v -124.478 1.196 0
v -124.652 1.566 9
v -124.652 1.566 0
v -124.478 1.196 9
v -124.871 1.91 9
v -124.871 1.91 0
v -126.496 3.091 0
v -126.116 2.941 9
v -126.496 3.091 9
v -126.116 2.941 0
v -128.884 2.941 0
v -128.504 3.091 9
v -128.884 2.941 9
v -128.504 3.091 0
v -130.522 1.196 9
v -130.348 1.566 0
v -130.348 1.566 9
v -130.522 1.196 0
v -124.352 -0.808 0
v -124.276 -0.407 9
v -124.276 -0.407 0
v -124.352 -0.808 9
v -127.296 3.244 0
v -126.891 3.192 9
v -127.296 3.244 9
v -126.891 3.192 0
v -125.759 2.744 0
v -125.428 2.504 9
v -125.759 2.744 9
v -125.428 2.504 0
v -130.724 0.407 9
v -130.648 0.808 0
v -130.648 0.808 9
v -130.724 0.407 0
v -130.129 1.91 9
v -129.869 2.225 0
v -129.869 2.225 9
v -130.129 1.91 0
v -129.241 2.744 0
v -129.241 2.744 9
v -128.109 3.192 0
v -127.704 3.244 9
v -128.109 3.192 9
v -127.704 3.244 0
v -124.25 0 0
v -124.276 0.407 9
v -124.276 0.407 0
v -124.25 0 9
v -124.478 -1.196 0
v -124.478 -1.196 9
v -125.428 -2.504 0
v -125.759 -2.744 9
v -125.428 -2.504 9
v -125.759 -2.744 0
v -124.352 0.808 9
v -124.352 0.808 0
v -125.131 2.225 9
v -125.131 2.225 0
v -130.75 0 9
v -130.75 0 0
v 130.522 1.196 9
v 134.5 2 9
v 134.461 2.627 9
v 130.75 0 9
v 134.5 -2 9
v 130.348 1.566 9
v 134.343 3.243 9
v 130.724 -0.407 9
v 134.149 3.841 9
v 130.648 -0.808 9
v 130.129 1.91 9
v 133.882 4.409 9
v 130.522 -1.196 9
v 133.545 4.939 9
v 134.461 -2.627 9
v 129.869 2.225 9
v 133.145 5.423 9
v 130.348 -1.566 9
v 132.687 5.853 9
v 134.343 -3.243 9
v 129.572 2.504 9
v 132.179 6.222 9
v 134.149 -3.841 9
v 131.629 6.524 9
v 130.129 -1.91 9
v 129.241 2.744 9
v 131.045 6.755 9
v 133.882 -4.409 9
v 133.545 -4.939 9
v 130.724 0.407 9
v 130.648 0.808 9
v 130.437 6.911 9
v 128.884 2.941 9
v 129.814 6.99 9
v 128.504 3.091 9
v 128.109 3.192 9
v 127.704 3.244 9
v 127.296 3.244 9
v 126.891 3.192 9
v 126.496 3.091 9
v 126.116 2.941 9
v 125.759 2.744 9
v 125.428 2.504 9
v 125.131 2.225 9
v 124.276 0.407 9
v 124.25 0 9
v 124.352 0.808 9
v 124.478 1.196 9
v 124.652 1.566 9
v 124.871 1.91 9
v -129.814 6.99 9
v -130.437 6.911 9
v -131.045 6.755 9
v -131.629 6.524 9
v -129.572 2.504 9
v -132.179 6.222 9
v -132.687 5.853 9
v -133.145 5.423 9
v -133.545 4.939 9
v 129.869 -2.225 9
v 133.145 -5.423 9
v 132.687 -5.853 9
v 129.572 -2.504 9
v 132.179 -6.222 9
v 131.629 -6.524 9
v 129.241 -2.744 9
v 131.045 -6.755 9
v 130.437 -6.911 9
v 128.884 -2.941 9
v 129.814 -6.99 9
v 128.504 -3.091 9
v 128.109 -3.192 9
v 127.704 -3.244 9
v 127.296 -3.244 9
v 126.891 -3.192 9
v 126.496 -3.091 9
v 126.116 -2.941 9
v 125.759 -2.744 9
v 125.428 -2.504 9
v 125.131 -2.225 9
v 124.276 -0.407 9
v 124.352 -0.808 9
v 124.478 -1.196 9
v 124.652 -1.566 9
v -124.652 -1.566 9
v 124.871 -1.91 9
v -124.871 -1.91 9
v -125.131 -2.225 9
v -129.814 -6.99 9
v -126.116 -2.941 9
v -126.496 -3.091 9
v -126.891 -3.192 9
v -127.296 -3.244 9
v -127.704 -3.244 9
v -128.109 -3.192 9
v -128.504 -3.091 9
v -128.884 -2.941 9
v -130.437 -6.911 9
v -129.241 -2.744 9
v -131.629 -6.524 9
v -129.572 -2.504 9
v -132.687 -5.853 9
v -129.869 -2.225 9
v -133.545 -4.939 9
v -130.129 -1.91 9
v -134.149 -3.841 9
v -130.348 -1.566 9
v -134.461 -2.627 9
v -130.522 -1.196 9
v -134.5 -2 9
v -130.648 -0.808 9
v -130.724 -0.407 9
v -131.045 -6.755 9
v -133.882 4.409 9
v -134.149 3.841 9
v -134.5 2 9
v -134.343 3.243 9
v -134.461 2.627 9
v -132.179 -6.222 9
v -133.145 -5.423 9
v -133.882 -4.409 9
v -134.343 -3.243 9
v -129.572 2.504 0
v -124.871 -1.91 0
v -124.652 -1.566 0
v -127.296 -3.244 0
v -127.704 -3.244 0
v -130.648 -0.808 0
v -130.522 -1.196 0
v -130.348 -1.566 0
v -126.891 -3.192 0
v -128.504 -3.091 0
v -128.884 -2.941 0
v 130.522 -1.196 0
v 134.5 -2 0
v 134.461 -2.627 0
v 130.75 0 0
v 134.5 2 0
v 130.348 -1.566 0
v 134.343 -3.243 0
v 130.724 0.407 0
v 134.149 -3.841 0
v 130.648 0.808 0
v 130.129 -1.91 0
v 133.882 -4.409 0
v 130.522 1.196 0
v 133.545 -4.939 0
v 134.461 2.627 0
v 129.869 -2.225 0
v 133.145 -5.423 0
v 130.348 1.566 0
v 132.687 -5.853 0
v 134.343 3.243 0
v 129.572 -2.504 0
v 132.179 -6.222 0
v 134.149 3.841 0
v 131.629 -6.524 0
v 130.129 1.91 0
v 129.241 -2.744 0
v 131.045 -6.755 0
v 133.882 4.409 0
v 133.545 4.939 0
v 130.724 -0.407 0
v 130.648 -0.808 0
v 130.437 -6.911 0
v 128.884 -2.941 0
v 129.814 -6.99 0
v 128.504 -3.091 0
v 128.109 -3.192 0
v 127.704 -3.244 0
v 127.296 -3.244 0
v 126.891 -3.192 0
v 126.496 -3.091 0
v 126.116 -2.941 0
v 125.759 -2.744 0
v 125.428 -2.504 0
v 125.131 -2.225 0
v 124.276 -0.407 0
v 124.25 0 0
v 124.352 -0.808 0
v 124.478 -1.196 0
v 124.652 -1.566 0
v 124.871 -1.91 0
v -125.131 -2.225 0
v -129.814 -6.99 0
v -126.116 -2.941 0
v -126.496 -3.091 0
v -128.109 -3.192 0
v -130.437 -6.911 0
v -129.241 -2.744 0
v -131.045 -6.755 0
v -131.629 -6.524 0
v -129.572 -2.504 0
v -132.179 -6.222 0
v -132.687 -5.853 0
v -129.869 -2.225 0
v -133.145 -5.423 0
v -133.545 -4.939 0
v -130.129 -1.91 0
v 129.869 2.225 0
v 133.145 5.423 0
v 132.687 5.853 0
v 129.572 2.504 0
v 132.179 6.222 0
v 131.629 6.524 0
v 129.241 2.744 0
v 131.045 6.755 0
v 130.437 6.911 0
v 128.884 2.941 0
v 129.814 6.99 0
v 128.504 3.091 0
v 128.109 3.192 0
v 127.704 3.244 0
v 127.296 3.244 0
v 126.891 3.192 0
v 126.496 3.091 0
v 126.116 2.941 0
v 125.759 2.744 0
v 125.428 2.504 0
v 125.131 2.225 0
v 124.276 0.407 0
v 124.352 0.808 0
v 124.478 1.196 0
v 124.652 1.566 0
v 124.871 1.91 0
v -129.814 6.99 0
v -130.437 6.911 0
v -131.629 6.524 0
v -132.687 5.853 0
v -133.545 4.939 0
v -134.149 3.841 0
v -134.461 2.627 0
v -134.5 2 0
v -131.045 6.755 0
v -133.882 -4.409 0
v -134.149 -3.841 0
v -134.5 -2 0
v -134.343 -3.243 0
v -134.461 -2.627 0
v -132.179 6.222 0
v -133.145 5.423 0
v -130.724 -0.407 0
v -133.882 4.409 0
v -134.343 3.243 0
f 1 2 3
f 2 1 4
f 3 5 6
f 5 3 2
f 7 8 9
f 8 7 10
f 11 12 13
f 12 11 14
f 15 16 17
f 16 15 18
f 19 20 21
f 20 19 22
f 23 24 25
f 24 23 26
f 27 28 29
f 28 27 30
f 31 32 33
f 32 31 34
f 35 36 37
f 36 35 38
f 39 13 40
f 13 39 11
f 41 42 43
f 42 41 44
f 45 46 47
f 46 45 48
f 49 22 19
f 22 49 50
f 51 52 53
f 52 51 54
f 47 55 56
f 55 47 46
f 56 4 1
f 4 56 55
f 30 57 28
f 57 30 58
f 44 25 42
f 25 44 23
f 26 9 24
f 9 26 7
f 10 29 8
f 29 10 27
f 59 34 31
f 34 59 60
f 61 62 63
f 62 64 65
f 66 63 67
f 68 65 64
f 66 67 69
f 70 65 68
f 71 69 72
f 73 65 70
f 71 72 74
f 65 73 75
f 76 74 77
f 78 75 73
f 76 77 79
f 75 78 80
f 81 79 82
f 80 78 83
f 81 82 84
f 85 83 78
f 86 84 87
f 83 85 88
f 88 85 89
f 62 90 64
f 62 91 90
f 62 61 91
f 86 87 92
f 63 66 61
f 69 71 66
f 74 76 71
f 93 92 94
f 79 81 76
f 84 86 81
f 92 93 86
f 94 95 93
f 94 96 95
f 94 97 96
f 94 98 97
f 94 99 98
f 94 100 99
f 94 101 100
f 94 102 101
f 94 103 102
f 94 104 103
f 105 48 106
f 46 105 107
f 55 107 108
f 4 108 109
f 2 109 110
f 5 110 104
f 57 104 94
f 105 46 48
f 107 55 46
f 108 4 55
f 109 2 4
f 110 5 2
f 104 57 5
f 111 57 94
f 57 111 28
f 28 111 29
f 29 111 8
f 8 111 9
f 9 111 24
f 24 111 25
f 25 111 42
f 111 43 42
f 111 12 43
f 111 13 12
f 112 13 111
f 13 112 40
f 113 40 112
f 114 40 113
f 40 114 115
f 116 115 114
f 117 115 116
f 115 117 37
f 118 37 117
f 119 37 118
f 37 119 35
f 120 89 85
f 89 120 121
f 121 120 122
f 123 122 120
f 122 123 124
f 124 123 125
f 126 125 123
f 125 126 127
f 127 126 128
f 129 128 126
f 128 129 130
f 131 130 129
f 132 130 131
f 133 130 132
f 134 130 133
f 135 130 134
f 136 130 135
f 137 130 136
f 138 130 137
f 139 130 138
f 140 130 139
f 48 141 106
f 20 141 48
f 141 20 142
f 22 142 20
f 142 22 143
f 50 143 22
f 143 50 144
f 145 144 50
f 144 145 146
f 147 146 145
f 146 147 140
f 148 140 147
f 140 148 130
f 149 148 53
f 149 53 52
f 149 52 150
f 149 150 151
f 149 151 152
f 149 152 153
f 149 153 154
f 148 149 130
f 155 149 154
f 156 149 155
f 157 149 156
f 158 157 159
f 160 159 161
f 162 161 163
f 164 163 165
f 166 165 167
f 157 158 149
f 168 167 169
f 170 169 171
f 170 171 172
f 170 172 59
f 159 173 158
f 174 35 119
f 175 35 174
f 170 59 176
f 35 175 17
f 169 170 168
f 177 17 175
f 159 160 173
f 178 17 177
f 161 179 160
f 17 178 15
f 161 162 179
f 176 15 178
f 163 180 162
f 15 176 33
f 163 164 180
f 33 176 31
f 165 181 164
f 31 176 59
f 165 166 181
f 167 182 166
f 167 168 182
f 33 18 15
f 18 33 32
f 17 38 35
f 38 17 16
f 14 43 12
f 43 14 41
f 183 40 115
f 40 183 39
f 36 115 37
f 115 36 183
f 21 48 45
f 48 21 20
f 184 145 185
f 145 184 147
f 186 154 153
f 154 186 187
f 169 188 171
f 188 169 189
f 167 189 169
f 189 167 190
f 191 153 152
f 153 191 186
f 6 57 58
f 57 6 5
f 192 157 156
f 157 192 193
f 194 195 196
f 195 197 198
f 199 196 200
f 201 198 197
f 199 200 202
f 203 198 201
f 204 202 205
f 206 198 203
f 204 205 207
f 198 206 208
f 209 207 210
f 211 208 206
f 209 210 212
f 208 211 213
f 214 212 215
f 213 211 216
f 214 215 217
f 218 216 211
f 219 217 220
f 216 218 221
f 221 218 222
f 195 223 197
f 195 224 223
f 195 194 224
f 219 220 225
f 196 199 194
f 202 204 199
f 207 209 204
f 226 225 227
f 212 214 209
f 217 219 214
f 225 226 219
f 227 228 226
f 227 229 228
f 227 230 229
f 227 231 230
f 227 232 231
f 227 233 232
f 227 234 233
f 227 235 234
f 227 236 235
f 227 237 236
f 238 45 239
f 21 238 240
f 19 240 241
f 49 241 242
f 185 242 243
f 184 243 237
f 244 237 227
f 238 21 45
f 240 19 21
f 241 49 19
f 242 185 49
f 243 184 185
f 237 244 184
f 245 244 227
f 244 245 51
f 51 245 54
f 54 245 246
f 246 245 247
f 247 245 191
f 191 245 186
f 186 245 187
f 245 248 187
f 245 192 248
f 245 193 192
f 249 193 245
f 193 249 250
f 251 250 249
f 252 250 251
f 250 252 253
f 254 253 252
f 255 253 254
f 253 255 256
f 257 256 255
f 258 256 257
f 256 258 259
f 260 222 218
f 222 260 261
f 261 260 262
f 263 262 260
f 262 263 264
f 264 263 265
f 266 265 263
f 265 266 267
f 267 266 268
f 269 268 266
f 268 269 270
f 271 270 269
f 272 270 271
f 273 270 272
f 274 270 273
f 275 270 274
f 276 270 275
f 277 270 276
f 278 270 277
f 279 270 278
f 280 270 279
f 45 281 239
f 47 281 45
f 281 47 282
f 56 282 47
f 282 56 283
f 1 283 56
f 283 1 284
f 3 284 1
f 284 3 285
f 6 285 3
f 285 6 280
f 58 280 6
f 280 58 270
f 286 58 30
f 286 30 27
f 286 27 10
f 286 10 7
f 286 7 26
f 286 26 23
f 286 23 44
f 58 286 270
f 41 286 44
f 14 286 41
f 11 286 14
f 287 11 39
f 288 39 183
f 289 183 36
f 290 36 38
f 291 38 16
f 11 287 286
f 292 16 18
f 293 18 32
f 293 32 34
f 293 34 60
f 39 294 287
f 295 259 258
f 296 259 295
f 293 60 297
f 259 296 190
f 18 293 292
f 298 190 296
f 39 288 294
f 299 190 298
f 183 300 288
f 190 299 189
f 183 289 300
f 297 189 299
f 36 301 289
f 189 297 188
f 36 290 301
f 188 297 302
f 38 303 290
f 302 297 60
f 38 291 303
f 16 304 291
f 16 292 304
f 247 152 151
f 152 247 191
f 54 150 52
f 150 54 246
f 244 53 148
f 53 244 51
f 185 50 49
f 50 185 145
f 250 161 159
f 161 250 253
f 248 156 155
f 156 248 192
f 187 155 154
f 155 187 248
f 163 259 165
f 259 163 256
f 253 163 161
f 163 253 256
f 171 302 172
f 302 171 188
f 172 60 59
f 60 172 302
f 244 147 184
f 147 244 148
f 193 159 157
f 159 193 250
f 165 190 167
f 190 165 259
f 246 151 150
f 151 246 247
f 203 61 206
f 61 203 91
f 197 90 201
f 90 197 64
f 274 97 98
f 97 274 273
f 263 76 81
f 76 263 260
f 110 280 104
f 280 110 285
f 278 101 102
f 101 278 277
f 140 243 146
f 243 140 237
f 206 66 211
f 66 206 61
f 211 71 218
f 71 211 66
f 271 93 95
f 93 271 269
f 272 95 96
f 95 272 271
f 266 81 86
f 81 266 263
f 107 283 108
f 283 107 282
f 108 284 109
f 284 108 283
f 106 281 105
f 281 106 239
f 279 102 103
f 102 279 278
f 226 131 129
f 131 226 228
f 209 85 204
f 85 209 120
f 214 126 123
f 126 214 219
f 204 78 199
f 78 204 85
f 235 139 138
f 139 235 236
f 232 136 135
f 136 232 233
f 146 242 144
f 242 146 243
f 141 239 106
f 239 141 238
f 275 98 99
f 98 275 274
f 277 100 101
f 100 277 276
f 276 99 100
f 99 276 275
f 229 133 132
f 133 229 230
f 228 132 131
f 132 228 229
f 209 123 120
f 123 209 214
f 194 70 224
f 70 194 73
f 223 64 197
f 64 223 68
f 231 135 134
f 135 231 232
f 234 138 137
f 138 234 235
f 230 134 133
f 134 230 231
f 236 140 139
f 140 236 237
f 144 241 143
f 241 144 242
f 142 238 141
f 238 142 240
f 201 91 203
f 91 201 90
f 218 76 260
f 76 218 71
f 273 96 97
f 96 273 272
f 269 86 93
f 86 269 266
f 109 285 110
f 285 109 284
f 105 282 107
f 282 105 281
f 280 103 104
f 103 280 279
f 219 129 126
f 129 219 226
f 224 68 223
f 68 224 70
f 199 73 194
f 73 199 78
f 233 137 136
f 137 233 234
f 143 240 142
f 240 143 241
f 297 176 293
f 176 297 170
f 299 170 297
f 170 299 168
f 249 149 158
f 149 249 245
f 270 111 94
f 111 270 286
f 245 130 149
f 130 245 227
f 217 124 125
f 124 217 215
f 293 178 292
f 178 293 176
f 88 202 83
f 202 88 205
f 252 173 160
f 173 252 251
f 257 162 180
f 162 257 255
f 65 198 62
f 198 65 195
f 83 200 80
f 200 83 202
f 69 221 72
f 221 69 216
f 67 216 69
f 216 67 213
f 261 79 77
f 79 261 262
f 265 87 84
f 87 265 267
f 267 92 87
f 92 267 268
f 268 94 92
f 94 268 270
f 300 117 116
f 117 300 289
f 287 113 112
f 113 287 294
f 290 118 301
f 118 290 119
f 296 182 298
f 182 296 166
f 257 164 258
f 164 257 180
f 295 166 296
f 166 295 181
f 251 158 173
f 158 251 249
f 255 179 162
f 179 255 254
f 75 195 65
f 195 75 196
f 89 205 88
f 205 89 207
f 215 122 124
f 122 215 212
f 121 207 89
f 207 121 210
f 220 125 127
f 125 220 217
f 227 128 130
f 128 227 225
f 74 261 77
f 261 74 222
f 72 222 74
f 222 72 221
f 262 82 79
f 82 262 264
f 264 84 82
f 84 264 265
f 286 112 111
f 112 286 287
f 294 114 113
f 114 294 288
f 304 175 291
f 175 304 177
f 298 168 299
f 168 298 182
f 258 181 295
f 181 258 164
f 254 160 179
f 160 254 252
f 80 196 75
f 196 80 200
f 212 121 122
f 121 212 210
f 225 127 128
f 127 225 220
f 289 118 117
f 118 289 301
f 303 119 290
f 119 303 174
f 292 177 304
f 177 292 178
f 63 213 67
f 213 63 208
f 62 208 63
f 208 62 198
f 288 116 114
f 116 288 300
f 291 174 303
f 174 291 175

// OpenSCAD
$fn = 50;


difference() {
	union() {
		hull() {
			translate(v = [-129.5000000000, 2.0000000000, 0]) {
				cylinder(h = 9, r = 5);
			}
			translate(v = [129.5000000000, 2.0000000000, 0]) {
				cylinder(h = 9, r = 5);
			}
			translate(v = [-129.5000000000, -2.0000000000, 0]) {
				cylinder(h = 9, r = 5);
			}
			translate(v = [129.5000000000, -2.0000000000, 0]) {
				cylinder(h = 9, r = 5);
			}
		}
	}
	union() {
		translate(v = [-127.5000000000, 0.0000000000, 0]) {
			cylinder(h = 9, r = 3.2500000000);
		}
		translate(v = [127.5000000000, 0.0000000000, 0]) {
			cylinder(h = 9, r = 3.2500000000);
		}
		translate(v = [-127.5000000000, 0.0000000000, 0]) {
			cylinder(h = 9, r = 1.8000000000);
		}
		translate(v = [127.5000000000, 0.0000000000, 0]) {
			cylinder(h = 9, r = 1.8000000000);
		}
		translate(v = [-127.5000000000, 0.0000000000, 0]) {
			cylinder(h = 9, r = 1.8000000000);
		}
		translate(v = [127.5000000000, 0.0000000000, 0]) {
			cylinder(h = 9, r = 1.8000000000);
		}
		translate(v = [-127.5000000000, 0.0000000000, 0]) {
			cylinder(h = 9, r = 1.8000000000);
		}
		translate(v = [127.5000000000, 0.0000000000, 0]) {
			cylinder(h = 9, r = 1.8000000000);
		}
	}
}
